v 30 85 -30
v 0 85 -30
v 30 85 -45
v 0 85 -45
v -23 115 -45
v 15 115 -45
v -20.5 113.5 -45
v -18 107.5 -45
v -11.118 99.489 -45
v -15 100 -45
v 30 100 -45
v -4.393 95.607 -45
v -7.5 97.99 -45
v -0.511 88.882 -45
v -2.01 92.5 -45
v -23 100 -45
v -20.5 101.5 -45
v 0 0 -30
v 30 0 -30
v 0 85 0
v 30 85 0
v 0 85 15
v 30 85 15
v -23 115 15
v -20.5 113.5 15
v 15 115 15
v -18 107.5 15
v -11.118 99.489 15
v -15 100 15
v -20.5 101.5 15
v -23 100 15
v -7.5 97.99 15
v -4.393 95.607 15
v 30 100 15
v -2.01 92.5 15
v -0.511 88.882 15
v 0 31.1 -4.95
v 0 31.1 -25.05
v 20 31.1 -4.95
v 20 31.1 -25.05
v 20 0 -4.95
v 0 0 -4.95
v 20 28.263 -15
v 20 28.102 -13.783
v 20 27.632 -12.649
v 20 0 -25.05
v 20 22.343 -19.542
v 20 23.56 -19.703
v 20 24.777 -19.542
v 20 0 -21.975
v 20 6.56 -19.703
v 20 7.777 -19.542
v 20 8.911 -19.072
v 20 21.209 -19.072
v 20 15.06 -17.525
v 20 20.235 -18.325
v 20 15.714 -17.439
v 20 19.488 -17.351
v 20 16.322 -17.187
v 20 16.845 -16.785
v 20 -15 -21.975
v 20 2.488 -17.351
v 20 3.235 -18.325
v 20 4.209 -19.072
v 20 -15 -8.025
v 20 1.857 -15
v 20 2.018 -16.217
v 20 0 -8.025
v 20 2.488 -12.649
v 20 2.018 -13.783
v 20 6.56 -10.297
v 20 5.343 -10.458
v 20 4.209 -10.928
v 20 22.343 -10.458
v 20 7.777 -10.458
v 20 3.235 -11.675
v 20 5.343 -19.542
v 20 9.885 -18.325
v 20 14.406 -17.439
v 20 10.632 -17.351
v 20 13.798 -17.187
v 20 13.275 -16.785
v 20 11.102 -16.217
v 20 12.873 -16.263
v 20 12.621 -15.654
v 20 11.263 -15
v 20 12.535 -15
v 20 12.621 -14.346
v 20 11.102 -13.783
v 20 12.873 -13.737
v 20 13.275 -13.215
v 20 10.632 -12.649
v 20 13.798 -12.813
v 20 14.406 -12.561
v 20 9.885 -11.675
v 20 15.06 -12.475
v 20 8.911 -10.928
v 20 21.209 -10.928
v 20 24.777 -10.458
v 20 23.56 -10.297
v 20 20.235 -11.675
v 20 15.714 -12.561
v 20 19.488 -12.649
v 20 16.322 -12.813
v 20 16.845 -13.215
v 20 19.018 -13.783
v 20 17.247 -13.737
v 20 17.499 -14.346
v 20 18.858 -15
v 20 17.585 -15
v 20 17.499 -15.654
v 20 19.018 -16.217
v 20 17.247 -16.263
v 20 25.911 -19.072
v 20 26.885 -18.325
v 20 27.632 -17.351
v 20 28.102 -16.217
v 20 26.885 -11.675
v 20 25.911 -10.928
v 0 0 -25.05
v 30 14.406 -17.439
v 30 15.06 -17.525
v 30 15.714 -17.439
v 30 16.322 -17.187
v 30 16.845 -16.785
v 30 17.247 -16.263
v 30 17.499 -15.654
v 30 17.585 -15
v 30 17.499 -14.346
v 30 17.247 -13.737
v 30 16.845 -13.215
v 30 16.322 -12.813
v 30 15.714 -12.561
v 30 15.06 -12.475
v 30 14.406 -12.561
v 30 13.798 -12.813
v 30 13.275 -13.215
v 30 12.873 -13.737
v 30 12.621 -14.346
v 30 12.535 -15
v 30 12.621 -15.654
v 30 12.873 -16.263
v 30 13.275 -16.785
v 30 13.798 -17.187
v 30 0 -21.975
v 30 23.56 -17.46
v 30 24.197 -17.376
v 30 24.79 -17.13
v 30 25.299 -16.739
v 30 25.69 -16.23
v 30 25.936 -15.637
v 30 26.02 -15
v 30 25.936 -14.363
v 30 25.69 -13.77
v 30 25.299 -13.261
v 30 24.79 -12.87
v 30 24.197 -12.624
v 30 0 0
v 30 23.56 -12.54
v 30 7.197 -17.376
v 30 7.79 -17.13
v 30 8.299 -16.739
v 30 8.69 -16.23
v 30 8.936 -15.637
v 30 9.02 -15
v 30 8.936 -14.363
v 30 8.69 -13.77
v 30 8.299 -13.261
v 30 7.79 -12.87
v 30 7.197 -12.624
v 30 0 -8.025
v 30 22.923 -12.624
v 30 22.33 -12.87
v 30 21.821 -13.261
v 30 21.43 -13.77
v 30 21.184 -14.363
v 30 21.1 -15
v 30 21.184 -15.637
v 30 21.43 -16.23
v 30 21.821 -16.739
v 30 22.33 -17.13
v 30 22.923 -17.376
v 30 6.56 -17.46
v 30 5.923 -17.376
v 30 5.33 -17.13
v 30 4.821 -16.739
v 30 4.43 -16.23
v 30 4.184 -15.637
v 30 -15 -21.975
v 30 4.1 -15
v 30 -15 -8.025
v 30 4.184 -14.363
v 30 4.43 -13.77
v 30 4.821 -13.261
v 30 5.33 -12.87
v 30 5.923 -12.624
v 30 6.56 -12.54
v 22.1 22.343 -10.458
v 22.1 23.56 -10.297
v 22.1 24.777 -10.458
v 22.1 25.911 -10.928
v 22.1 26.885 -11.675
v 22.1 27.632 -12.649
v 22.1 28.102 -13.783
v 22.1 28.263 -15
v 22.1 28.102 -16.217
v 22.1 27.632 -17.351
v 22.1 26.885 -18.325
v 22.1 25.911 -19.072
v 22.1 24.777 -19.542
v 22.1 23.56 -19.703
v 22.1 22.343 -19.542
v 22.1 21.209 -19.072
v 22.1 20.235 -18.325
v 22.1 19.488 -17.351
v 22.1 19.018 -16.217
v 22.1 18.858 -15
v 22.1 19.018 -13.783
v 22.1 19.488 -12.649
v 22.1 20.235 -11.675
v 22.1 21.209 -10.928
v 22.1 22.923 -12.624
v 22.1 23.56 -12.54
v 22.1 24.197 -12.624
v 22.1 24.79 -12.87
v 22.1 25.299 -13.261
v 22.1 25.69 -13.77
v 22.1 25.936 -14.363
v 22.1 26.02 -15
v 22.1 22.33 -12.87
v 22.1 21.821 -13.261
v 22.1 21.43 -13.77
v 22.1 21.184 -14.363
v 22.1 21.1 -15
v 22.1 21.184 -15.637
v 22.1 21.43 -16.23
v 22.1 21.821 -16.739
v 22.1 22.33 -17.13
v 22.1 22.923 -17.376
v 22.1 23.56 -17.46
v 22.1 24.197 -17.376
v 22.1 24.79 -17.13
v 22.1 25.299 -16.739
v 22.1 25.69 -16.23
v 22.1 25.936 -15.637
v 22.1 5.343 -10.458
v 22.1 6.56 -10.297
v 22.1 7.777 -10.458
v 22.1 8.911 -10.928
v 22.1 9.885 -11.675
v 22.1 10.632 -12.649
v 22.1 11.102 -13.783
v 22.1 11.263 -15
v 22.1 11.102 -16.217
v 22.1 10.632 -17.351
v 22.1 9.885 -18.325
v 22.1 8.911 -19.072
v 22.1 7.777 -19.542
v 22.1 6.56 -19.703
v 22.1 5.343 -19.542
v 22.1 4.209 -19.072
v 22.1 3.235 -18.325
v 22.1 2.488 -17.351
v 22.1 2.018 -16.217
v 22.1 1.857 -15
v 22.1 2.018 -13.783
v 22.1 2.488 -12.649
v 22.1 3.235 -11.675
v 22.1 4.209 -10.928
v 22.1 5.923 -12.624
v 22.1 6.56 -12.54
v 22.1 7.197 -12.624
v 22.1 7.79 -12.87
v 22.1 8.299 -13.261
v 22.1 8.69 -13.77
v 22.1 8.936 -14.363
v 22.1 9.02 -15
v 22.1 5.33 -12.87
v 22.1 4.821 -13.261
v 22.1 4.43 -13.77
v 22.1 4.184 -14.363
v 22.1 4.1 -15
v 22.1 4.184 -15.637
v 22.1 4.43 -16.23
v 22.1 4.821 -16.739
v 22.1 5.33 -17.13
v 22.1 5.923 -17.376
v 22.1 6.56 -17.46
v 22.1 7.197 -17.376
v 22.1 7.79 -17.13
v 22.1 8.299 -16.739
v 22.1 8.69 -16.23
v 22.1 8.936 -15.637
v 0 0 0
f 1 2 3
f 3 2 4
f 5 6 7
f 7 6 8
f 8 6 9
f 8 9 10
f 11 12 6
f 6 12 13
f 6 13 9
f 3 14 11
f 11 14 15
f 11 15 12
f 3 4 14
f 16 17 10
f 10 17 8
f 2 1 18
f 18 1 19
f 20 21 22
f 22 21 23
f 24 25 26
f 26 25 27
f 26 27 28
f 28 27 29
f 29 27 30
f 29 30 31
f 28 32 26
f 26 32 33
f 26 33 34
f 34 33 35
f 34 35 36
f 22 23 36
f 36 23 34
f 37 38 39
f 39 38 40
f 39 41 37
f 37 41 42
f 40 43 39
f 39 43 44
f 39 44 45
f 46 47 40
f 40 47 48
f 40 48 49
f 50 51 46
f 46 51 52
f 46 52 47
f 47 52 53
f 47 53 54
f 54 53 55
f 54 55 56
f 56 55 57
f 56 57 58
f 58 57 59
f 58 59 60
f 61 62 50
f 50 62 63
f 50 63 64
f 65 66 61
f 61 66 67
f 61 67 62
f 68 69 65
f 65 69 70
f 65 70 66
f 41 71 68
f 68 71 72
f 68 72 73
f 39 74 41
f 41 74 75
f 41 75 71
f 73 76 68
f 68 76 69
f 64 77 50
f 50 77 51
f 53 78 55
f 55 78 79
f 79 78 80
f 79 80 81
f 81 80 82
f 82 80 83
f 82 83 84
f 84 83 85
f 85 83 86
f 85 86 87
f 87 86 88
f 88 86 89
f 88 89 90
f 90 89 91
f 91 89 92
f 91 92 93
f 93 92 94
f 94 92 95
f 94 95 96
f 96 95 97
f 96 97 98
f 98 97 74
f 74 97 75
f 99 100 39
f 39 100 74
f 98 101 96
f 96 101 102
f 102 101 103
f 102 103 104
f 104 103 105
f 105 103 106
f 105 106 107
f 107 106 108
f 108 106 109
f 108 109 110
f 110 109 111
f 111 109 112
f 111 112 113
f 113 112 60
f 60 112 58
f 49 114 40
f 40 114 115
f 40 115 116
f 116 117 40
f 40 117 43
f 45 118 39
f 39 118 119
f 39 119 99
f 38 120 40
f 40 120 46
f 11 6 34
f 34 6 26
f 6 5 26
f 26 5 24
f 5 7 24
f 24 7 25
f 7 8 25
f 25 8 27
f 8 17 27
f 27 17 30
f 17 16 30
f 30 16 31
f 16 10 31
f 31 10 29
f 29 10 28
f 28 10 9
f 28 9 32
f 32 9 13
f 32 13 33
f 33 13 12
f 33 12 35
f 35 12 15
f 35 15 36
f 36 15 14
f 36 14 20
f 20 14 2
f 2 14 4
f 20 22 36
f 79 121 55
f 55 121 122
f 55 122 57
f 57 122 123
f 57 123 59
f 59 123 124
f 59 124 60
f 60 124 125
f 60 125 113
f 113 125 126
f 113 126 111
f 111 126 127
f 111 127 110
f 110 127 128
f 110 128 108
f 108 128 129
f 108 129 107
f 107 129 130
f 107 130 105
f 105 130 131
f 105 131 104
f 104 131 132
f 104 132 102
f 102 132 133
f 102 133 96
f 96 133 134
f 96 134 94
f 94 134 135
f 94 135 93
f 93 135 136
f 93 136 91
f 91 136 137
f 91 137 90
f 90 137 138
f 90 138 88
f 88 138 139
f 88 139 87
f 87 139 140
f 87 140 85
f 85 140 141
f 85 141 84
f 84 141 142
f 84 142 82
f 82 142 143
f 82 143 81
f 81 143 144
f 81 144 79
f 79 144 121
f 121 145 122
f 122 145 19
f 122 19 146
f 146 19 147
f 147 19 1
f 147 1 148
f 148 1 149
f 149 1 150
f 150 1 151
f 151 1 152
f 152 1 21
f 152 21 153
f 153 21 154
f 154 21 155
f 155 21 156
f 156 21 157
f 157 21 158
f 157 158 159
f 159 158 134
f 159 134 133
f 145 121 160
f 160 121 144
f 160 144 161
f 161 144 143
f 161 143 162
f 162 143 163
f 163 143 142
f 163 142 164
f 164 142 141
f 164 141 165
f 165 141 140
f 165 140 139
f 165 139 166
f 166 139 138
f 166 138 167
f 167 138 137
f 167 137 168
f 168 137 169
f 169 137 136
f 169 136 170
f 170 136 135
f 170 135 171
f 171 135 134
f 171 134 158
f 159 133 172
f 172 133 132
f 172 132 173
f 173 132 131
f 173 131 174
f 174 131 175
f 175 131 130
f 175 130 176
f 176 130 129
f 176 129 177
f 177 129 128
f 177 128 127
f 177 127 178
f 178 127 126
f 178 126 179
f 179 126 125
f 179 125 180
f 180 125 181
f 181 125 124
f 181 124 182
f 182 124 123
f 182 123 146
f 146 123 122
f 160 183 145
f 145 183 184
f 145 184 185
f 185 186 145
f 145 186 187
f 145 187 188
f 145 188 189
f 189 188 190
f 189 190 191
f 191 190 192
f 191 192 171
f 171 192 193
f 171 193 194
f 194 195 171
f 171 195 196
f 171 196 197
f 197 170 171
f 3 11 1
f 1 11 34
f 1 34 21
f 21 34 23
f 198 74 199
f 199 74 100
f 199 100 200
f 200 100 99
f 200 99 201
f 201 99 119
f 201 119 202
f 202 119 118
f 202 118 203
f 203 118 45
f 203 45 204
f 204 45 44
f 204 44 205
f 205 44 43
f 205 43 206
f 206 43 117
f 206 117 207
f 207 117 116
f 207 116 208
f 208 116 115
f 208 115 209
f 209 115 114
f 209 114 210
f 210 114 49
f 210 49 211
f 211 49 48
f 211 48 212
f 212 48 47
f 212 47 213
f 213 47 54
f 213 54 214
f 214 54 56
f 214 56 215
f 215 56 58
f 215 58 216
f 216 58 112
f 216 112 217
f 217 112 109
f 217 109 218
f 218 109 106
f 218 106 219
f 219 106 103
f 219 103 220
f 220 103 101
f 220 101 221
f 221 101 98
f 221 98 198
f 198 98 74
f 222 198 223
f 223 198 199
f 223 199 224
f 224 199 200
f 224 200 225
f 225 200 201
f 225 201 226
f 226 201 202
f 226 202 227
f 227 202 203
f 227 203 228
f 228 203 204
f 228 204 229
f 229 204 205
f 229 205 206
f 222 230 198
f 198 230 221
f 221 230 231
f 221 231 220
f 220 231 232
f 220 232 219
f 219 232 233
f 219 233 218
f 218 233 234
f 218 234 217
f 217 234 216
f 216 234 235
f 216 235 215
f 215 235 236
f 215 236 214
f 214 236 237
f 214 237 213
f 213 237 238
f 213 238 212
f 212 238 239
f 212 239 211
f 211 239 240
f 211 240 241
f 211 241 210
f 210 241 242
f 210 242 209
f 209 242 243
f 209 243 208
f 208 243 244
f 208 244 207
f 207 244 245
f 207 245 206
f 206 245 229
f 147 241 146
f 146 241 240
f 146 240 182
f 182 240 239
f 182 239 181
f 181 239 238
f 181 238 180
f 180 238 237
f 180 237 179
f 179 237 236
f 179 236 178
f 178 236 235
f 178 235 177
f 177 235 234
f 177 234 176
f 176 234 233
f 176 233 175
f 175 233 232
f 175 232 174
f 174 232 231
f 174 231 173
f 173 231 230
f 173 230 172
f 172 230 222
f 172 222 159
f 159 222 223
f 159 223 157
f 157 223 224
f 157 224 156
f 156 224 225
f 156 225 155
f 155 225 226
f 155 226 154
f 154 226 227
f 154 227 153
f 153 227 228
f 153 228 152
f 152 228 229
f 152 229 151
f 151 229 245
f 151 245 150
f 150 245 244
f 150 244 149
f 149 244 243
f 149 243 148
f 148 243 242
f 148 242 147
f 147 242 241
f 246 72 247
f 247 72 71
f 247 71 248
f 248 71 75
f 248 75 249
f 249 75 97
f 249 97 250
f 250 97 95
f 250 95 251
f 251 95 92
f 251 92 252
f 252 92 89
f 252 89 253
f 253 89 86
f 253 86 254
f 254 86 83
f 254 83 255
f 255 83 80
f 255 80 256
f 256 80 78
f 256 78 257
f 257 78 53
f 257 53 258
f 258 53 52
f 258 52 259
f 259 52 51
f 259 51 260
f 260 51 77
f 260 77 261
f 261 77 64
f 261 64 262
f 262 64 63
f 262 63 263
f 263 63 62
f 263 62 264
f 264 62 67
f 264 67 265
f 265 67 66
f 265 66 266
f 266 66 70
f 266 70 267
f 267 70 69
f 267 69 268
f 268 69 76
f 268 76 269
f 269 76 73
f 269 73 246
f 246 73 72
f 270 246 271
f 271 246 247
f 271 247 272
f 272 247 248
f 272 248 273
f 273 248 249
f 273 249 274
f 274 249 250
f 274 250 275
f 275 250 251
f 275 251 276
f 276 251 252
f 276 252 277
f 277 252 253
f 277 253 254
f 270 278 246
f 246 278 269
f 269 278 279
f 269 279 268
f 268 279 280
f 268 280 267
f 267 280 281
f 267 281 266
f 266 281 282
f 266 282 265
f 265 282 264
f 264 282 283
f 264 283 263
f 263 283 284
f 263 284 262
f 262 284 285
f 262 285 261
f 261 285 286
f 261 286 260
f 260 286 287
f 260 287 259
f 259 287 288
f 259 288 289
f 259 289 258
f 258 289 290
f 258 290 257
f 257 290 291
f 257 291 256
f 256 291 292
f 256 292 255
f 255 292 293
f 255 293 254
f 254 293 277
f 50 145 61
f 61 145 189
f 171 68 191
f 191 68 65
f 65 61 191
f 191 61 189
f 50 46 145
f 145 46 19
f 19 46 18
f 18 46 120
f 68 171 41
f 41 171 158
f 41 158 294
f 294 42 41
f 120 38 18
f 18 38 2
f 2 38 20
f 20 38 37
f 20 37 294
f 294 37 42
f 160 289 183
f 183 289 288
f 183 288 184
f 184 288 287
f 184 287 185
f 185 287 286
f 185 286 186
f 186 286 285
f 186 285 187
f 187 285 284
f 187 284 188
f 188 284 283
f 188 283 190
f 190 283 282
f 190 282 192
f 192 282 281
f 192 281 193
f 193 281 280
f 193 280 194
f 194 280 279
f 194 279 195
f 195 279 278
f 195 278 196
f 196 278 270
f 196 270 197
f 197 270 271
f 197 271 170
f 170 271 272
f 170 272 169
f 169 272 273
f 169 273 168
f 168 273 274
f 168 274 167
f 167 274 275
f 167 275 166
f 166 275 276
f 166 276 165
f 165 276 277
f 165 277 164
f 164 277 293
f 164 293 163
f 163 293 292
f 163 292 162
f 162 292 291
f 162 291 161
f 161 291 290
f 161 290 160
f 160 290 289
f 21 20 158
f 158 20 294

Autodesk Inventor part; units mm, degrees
ref_plane "YZ Plane" through (0, 0, 0) normal (1, 0, 0) x (0, 1, 0)
ref_plane "XZ Plane" through (0, 0, 0) normal (0, 1, 0) x (-1, 0, 0)
sketch "Sketch1" plane through (0, 0, 0) normal (0, 0, 1) x (1, 0, 0)
  line L0 (0, 0) -> (25, 0)
  line L1 (25, 0) -> (25, 40)
  line L2 (25, 40) -> (0, 40)
  line L3 (0, 40) -> (0, 0)
  dimension "d1" = 25
  dimension "d2" = 40
  dimension "d3" = 25
extrude "Extrusion1" add sketch "Sketch1" against normal blind 30
sketch "Sketch2" plane through (25, 0, 0) normal (1, 0, 0) x (0, 0, -1)
  line L0 (0, 0) -> (30, 0) projected
  circle A0 centre (15, 6.56) radius 2.46
extrude "Extrusion2" cut sketch "Sketch2" against normal blind 30
sketch "Sketch3" plane through (0, 0, 0) normal (-1, 0, 0) x (0, 0, 1)
  line L0 (0, 0) -> (-30, 0) projected
  line L1 (-25.05, 0) -> (-4.95, 0)
  line L2 (-4.95, 0) -> (-4.95, 33.12)
  line L3 (-4.95, 33.12) -> (-25.05, 33.12)
  line L4 (-25.05, 33.12) -> (-25.05, 0)
  dimension "d11" = 20.1
extrude "Extrusion3" cut sketch "Sketch3" against normal blind 20
sketch "Sketch4" plane through (0, 0, 0) normal (0, -1, 0) x (1, 0, 0)
  line L0 (20, -4.95) -> (20, -25.05) projected
  line L1 (20, -15) -> (25, -15)
  line L2 (25, 0) -> (25, -30) projected
  line L3 (20, -8.025) -> (25, -8.025)
  line L4 (25, -8.025) -> (25, -21.975)
  line L5 (25, -21.975) -> (20, -21.975)
  line L6 (20, -21.975) -> (20, -8.025)
  line L7 (20, -8.025) -> (25, -21.975) construction
  line L8 (25, -8.025) -> (20, -21.975) construction
  line L9 (25, -12.54) -> (25, -17.46) projected
  point P0 (0, 0)
  point P1 (22.5, -15)
  dimension "d14" = 13.95
extrude "Extrusion4" add sketch "Sketch4" along normal blind 15
sketch "Sketch5" plane through (20, 0, 0) normal (-1, 0, 0) x (0, 0, 1)
  circle A0 centre (-15, 6.56) radius 2.46 projected
  circle A1 centre (-15, 6.56) radius 4.7025
  circle A2 centre (-15, 6.56) radius 2.46 projected
  circle A3 centre (-15, 6.56) radius 2.46
  point P0 (0, 0)
  dimension "d17" = 9.405
extrude "Extrusion5" cut sketch "Sketch5" against normal blind 2.1
sketch "Sketch6" plane through (25, 0, 0) normal (1, 0, 0) x (0, 0, -1)
  circle A0 centre (15, 6.56) radius 4.7025 projected
  line L0 (15, 6.56) -> (15, 23.56)
  circle A1 centre (15, 23.56) radius 2.46
  point P0 (0, 0)
  dimension "d20" = 17
  dimension "d21" = 4.92
extrude "Extrusion6" cut sketch "Sketch6" against normal blind 10 contours A1
sketch "Sketch7" plane through (20, 0, 0) normal (-1, 0, 0) x (0, 0, 1)
  circle A0 centre (-15, 23.56) radius 2.46 projected
  circle A1 centre (-15, 23.56) radius 4.7025
  point P0 (0, 0)
  dimension "d24" = 9.405
extrude "Extrusion7" cut sketch "Sketch7" against normal blind 2.1
sketch "Sketch9" plane through (25, 0, 0) normal (1, 0, 0) x (0, 0, -1)
  circle A0 centre (15, 6.56) radius 2.46 projected
  circle A1 centre (15, 6.56) radius 2.46
  circle A2 centre (15, 23.56) radius 2.46 projected
  circle A3 centre (15, 23.56) radius 2.46
  line L0 (30, 40) -> (30, 0) projected
  line L1 (30, 0) -> (30, 40)
  line L2 (30, 40) -> (0, 40)
  line L3 (0, 40) -> (0, 0)
  line L4 (0, 0) -> (8.025, 0) projected
  line L5 (21.975, 0) -> (21.975, -15)
  line L6 (21.975, -15) -> (8.025, -15)
  line L7 (8.025, -15) -> (8.025, 0)
  line L8 (0, 0) -> (8.025, 0)
  line L9 (21.975, 0) -> (30, 0)
extrude "Extrusion8" add sketch "Sketch9" along normal blind 5
sketch "Sketch10" plane through (0, 40, 0) normal (0, 1, 0) x (1, 0, 0)
  line L0 (0, 30) -> (30, 30) projected
  line L1 (30, 0) -> (0, 0) projected
  line L2 (0, 30) -> (30, 30)
  line L3 (30, 30) -> (30, 0)
  line L4 (30, 0) -> (0, 0)
  line L5 (0, 0) -> (0, 30)
extrude "Extrusion9" add sketch "Sketch10" along normal blind 30
sketch "Sketch12" plane through (30, 0, 0) normal (1, 0, 0) x (0, 0, -1)
  circle A0 centre (15, 6.56) radius 2.46 projected
  line L0 (15, 6.56) -> (15, 15.06)
  circle A1 centre (15, 15.06) radius 2.525
  point P0 (0, 0)
  dimension "d31" = 8.5
  dimension "d33" = 5.05
extrude "Extrusion10" cut sketch "Sketch12" against normal blind 30 contours A1
sketch "Sketch14" plane through (0, 0, 0) normal (0, 0, 1) x (1, 0, 0)
  line L0 (30, 70) -> (0, 70) projected
  line L1 (0, 70) -> (0, 85)
  line L2 (-15, 100) -> (-23, 100)
  line L3 (30, 100) -> (15, 115)
  line L4 (-23, 115) -> (15, 115)
  line L5 (30, 0) -> (30, 70) projected
  line L6 (30, 100) -> (30, 70)
  line L7 (-20.5, 113.5) -> (-23, 115)
  line L8 (-20.5, 101.5) -> (-23, 100)
  line L9 (-18, 107.5) -> (-20.5, 101.5)
  line L10 (-18, 107.5) -> (-20.5, 113.5)
  arc A0 (0, 85) -> (-15, 100) centre (-15, 85) ccw
  point P0 (0, 0)
  point P1 (0, 100)
  dimension "d47" = 30
  dimension "d49" = 15
  dimension "d54" = 15
extrude "Extrusion12" add sketch "Sketch14" against normal blind 30
sketch "Sketch15" plane through (0, 0, -25.05) normal (-1, 0, 0) x (0, 0, 1)
  line L0 (0, 33.12) -> (20.1, 33.12) projected
  line L1 (20.1, 33.12) -> (20.1, 0) projected
  line L2 (0, 33.12) -> (20.1, 33.12)
  line L3 (20.1, 33.12) -> (20.1, 31.1)
  line L4 (20.1, 31.1) -> (0, 31.1)
  line L5 (0, 31.1) -> (0, 33.12)
  point P0 (25.05, 0)
  dimension "d57" = 2.02
extrude "Extrusion13" add sketch "Sketch15" against normal blind 20
sketch "Sketch17" plane through (0, 0, 0) normal (0, 0, 1) x (1, 0, 0)
  line L0 (-23, 115) -> (15, 115) projected
  line L1 (-23, 115) -> (15, 115)
  line L2 (30, 0) -> (30, 100) projected
  line L3 (15, 115) -> (30, 100)
  line L4 (30, 100) -> (30, 85)
  arc A0 (0, 85) -> (-15, 100) centre (-15, 85) ccw projected
  line L5 (30, 85) -> (0, 85)
  arc A1 (0, 85) -> (-15, 100) centre (-15, 85) ccw
  line L6 (-15, 100) -> (-23, 100) projected
  line L7 (-15, 100) -> (-23, 100)
  line L8 (-23, 100) -> (-20.5, 101.5) projected
  line L9 (-23, 100) -> (-20.5, 101.5)
  line L10 (-20.5, 101.5) -> (-18, 107.5) projected
  line L11 (-20.5, 101.5) -> (-18, 107.5)
  line L12 (-18, 107.5) -> (-20.5, 113.5) projected
  line L13 (-18, 107.5) -> (-20.5, 113.5)
  line L14 (-20.5, 113.5) -> (-23, 115)
  point P0 (0, 0)
extrude "Extrusion14" add sketch "Sketch17" along normal blind 15
ref_plane "Work Plane1" through (0, 0, -15) normal (0, 0, 1) x (1, 0, 0)
mirror "Mirror1" about plane through (0, 0, -15) normal (0, 0, 1) of "Extrusion14"
properties part number "12mm_x_60mm"
